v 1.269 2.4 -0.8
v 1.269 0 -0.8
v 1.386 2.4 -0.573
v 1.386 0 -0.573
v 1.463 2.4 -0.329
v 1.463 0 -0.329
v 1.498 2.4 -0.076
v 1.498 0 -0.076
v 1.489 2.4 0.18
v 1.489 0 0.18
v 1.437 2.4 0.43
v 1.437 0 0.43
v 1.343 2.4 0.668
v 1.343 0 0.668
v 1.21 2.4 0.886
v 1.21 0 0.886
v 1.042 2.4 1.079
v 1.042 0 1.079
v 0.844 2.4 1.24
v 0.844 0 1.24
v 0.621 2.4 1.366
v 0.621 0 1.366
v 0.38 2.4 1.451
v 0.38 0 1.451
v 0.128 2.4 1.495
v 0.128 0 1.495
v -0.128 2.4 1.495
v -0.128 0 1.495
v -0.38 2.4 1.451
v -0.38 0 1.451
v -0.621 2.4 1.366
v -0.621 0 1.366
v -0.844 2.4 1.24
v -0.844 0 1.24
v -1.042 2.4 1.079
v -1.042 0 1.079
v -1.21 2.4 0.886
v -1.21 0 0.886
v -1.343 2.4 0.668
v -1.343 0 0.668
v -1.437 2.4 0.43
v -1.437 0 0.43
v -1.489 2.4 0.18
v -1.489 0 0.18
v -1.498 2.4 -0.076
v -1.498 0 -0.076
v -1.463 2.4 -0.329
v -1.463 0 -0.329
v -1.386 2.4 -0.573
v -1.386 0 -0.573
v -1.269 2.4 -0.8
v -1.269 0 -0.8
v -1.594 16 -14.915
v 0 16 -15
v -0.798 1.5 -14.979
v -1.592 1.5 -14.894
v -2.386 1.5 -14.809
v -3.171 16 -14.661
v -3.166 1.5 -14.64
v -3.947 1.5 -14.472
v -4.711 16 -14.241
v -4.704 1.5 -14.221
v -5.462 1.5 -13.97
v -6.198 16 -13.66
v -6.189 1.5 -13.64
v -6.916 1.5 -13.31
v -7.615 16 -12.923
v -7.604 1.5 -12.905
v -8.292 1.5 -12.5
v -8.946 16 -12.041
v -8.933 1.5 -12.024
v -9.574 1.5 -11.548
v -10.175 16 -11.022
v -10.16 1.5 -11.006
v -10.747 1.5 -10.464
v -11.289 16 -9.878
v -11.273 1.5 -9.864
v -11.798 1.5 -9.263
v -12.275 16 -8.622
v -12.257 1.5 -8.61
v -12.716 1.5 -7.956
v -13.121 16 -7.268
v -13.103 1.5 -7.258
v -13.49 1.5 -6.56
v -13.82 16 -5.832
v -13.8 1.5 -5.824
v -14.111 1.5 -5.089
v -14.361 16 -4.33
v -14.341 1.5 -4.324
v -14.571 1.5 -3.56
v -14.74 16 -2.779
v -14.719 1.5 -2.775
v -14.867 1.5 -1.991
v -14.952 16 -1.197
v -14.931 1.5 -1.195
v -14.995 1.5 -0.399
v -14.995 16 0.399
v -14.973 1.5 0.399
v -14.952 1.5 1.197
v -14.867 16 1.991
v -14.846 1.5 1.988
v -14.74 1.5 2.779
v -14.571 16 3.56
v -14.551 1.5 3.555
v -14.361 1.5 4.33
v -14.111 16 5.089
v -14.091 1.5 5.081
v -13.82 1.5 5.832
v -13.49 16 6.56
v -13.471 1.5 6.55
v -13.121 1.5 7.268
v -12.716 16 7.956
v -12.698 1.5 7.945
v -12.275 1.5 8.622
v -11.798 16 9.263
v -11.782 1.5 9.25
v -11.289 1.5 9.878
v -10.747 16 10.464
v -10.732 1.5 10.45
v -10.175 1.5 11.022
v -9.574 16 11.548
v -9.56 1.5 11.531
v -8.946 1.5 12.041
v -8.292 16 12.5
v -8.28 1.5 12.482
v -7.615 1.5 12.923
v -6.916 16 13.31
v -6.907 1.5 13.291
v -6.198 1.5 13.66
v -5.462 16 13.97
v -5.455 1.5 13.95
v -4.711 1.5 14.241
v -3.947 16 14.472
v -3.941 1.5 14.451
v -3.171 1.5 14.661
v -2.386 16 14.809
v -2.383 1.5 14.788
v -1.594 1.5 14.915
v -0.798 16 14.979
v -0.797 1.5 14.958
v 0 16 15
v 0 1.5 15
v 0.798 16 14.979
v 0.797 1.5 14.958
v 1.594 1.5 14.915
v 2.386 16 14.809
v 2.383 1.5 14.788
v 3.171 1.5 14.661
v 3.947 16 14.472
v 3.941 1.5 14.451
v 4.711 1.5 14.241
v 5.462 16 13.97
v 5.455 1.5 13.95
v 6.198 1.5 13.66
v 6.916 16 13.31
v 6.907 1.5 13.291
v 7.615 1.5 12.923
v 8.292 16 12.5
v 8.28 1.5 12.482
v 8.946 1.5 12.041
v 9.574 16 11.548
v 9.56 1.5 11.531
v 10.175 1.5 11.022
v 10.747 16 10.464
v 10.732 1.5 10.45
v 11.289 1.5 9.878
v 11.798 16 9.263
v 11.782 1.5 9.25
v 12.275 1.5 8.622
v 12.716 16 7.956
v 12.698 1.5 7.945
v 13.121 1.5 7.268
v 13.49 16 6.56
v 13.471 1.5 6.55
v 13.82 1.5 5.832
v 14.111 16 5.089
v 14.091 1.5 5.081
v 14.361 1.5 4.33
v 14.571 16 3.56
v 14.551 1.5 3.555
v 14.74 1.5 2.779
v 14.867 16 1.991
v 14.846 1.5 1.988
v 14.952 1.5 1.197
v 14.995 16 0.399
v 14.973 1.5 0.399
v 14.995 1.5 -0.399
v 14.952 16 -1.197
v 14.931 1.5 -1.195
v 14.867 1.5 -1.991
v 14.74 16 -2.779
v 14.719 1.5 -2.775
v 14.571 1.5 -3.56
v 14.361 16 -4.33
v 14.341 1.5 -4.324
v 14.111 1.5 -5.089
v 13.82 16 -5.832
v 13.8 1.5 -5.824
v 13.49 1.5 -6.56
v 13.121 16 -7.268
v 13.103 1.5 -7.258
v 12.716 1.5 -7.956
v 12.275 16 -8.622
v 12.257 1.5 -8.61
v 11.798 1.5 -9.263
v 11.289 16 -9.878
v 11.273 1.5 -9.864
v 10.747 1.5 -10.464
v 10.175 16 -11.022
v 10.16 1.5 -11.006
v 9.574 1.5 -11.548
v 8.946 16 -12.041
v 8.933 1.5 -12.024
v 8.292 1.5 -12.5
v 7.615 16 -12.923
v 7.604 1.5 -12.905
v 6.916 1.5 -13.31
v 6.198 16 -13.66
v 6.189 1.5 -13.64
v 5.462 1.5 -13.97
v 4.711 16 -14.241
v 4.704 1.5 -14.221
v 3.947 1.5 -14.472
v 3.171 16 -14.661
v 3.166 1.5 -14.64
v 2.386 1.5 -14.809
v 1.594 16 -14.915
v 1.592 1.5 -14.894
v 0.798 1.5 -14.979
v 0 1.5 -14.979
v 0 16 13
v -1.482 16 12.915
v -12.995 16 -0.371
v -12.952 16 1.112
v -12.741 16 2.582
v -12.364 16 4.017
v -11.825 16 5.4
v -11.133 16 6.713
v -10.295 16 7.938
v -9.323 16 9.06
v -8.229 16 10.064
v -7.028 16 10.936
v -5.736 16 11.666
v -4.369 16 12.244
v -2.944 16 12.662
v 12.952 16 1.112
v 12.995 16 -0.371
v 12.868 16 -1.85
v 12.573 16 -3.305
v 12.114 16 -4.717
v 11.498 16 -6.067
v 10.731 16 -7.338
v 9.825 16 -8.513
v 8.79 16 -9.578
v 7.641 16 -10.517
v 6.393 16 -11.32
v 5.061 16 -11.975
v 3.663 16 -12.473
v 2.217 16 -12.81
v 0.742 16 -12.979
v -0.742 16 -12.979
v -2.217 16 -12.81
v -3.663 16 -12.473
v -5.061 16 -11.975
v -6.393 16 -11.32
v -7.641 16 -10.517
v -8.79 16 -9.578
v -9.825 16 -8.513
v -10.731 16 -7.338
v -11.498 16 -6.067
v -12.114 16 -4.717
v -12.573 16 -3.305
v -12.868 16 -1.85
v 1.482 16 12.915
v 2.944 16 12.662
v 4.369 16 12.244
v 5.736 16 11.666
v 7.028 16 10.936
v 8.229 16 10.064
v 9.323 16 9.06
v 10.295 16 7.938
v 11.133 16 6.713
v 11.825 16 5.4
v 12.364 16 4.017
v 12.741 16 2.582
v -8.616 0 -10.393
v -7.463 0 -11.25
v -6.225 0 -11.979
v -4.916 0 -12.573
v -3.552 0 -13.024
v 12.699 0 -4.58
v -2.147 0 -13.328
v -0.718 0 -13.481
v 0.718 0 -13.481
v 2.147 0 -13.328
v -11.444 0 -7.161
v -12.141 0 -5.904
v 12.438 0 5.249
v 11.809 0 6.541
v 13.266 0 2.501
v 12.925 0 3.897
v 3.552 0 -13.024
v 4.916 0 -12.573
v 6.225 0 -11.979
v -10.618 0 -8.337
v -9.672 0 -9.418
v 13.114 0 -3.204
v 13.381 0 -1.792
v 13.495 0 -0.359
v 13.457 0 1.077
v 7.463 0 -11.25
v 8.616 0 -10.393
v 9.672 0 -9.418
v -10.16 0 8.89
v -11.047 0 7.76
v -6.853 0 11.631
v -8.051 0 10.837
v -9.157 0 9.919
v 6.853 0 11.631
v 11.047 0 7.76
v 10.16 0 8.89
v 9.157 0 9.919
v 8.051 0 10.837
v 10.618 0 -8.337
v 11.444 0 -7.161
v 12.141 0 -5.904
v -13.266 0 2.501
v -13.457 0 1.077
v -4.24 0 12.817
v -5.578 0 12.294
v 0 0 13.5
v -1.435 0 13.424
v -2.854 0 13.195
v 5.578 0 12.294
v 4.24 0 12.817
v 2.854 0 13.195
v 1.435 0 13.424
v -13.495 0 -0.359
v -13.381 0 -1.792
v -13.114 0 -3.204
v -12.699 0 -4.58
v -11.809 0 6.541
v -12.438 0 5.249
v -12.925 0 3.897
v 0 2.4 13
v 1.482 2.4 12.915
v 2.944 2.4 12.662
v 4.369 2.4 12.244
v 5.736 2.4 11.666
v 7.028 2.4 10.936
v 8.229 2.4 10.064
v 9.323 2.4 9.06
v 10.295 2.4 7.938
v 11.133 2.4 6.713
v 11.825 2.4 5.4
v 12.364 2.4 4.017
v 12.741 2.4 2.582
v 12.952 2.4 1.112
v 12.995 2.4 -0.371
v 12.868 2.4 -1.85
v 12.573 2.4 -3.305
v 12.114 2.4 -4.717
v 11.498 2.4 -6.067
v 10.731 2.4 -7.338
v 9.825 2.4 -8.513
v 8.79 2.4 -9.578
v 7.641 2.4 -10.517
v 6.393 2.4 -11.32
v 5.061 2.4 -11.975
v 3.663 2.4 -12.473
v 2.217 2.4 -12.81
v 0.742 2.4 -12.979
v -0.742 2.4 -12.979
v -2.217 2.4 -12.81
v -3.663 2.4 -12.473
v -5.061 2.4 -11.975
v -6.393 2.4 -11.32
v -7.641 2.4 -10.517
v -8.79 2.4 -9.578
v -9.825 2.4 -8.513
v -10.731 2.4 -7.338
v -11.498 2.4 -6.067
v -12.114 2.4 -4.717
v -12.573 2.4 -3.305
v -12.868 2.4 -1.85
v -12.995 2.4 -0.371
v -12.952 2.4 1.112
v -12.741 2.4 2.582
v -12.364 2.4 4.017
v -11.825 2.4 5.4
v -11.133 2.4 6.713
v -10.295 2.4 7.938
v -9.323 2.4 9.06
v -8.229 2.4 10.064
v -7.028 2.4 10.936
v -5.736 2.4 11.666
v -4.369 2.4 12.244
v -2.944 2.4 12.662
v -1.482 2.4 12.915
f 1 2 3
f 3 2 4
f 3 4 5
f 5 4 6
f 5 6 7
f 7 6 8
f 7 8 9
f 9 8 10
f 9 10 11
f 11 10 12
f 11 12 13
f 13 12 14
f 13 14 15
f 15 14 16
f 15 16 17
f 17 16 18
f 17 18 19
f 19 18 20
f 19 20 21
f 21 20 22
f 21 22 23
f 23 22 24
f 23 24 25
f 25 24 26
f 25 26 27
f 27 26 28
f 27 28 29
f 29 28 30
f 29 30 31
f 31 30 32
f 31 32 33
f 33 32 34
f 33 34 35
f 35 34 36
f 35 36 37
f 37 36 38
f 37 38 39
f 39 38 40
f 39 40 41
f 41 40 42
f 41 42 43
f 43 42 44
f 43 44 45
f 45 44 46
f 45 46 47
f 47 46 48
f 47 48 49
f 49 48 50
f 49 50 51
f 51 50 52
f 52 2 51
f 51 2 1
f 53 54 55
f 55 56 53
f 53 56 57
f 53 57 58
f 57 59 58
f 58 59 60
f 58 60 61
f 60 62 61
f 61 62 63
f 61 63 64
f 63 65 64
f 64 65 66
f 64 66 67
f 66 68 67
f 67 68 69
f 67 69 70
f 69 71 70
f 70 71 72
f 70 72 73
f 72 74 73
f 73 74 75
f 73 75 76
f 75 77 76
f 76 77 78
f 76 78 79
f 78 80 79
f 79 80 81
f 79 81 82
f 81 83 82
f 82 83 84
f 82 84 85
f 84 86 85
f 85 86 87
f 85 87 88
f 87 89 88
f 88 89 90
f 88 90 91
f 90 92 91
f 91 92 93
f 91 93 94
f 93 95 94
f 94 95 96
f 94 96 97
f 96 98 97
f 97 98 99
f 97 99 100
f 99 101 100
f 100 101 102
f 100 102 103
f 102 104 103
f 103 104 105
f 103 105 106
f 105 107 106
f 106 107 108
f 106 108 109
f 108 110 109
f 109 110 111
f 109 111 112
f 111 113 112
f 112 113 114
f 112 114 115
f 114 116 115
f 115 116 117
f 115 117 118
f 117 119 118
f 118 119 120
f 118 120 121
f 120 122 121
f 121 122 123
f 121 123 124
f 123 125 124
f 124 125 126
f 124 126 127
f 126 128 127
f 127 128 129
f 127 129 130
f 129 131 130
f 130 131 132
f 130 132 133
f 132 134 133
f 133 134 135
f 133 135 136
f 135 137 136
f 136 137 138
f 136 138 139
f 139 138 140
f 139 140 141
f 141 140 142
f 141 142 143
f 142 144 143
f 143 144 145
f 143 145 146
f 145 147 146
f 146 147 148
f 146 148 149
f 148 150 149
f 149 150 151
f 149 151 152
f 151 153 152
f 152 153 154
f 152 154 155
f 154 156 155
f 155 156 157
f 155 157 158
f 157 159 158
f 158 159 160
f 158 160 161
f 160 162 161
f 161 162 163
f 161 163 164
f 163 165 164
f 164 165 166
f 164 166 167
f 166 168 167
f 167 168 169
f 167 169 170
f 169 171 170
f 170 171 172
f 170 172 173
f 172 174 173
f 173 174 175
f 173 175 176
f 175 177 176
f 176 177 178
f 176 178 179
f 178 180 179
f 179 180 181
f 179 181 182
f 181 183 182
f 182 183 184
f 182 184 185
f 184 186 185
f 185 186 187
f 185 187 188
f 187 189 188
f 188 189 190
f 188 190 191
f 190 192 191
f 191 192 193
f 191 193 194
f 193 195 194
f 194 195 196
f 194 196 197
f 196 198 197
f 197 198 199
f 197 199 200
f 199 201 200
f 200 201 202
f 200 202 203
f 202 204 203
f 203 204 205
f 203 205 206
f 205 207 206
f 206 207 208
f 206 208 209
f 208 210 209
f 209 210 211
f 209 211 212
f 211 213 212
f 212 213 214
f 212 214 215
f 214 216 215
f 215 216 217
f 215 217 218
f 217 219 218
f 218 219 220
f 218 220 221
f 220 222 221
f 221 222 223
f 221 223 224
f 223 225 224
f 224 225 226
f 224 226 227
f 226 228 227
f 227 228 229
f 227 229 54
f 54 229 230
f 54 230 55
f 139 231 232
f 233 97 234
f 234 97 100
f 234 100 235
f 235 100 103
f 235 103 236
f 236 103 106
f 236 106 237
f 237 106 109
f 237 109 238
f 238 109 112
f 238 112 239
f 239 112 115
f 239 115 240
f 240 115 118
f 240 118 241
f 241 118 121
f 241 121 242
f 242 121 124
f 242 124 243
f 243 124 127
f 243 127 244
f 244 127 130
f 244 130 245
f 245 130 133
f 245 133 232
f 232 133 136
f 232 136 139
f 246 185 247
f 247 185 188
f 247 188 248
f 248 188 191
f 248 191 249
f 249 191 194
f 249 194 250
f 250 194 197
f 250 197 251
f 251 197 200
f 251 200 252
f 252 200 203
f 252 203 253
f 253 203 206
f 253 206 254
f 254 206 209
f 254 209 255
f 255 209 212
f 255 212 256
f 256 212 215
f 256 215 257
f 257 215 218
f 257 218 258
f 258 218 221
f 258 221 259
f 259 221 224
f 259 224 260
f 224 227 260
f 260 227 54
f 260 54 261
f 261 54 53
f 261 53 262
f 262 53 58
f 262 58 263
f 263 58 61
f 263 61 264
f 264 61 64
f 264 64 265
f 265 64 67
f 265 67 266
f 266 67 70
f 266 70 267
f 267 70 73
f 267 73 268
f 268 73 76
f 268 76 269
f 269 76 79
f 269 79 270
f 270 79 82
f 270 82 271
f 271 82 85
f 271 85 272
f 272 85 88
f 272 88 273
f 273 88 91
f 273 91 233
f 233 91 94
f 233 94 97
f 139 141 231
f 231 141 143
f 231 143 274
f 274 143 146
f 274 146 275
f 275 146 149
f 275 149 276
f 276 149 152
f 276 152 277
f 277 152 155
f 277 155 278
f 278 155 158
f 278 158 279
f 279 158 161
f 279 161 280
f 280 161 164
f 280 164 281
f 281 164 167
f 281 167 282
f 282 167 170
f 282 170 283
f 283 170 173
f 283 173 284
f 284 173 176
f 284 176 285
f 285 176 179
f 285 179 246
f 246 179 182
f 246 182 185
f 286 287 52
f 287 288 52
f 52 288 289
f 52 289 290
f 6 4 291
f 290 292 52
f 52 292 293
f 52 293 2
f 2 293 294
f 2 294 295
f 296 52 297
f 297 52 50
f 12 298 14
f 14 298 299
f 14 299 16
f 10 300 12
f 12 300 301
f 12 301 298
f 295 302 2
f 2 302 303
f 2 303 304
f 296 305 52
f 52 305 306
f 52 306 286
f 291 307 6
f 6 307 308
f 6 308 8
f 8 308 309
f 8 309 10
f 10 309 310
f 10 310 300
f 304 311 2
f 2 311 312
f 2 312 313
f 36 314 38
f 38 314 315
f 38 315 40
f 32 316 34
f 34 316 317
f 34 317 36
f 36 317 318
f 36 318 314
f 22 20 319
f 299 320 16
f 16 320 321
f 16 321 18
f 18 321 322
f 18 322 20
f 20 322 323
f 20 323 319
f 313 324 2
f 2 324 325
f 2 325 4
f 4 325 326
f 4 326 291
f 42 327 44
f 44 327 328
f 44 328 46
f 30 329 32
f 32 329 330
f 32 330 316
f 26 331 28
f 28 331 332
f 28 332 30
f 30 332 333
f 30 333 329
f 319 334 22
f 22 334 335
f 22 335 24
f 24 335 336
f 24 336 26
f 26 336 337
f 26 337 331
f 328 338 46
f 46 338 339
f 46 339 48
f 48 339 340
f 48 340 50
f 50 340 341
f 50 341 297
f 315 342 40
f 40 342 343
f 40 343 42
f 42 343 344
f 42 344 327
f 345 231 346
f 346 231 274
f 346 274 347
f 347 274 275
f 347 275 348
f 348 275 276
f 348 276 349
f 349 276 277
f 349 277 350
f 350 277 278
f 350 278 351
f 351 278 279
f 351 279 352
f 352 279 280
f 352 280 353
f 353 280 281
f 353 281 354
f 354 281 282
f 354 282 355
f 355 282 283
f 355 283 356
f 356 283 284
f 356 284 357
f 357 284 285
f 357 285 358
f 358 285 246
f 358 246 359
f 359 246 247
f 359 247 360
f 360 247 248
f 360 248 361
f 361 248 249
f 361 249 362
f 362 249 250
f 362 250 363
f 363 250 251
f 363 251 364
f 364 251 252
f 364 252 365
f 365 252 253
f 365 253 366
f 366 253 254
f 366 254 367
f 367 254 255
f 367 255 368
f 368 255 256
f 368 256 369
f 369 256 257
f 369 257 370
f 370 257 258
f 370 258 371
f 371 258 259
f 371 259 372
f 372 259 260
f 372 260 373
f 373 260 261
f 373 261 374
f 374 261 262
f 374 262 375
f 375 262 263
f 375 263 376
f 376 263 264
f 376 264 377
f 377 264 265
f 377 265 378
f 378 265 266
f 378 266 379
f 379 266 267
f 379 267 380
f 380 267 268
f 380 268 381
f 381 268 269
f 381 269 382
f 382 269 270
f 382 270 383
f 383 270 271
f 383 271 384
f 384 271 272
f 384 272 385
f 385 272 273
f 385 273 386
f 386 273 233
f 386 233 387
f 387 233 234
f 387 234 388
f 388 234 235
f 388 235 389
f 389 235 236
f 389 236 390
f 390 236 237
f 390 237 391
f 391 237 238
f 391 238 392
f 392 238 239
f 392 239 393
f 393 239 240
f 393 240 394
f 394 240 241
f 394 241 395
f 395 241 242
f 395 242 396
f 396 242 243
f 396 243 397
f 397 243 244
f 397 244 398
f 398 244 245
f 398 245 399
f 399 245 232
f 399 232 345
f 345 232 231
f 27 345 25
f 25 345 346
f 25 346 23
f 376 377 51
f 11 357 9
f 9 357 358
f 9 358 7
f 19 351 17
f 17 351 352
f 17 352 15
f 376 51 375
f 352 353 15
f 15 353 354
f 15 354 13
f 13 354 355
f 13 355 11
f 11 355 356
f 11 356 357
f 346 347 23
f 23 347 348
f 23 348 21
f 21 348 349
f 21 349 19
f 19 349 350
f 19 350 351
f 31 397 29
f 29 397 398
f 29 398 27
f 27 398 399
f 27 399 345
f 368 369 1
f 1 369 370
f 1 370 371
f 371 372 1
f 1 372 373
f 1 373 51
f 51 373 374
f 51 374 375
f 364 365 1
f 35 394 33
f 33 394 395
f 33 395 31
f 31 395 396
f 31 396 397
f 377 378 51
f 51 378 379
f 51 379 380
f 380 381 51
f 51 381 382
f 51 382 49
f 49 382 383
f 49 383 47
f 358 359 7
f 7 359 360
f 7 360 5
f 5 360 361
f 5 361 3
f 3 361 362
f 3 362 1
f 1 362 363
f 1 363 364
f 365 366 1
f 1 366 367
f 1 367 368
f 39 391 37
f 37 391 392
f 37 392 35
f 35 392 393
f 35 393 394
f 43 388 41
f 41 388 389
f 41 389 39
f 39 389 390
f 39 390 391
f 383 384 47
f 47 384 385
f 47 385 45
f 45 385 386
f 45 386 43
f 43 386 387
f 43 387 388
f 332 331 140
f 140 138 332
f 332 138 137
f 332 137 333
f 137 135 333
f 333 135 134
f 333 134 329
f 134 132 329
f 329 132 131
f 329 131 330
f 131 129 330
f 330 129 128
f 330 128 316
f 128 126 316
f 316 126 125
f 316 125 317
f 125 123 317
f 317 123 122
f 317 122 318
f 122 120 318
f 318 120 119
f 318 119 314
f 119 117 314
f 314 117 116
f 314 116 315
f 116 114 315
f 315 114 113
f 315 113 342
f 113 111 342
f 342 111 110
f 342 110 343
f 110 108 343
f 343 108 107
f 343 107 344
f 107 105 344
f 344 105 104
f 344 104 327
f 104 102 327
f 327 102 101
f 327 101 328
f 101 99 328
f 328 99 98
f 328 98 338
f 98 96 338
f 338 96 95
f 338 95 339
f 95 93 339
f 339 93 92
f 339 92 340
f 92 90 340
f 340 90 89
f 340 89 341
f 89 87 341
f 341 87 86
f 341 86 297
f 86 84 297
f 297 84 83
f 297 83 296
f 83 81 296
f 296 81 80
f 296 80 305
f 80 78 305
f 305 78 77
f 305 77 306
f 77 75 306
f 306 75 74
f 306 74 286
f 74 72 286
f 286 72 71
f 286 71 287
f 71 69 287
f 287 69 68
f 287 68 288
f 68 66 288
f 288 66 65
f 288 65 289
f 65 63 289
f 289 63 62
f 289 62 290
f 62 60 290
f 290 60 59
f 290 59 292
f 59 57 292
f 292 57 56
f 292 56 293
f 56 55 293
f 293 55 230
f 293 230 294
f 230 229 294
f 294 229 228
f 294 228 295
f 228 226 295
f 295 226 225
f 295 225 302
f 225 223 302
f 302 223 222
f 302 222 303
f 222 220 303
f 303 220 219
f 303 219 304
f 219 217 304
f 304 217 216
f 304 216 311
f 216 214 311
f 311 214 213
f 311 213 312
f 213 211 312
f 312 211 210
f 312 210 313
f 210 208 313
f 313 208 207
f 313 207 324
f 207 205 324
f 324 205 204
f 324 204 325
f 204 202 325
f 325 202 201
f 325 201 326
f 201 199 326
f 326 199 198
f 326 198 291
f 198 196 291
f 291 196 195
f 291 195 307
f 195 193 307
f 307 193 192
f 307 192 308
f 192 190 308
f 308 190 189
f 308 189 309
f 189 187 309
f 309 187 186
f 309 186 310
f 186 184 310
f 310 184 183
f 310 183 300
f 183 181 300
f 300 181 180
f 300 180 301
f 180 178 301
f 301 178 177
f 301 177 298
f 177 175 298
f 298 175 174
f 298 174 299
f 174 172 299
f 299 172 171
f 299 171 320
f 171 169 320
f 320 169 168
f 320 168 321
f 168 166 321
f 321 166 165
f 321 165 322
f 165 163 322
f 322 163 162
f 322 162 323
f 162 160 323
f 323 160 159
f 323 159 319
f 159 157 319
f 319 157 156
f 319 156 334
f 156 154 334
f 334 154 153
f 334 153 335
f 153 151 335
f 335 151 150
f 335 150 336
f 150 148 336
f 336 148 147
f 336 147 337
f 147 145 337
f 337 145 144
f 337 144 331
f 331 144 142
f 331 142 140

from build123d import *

# Parameters (mm, degrees)
SKETCH1_R           = 15
BOSS_EXTRUDE1_DEPTH = 16
SKETCH2_R           = 13
CUT_EXTRUDE1_DEPTH  = 13.6
CHAMFER1_SIZE       = 1.5


with BuildPart() as part:
    # Sketch1 → Boss-Extrude1 (new body)
    with BuildSketch(Plane(origin=(0, 0, 0), x_dir=(1, 0, 0), z_dir=(0, 1, 0))):
        with Locations(Location((0, 0, 0), (0, 0, 270))):
            Circle(SKETCH1_R)
        with BuildLine():
            Line((-1.268857754, 0.8), (1.268857754, 0.8))
            ThreePointArc((1.268857754, 0.8), (0, -1.5), (-1.268857754, 0.8))
        make_face(mode=Mode.SUBTRACT)
    extrude(amount=BOSS_EXTRUDE1_DEPTH)

    # Sketch2 → Cut-Extrude1 (cut)
    with BuildSketch(Plane(origin=(0, 16, 0), x_dir=(1, 0, 0), z_dir=(0, 1, 0))):
        with Locations(Location((0, 0, 0), (0, 0, 270))):
            Circle(SKETCH2_R)
    extrude(amount=-CUT_EXTRUDE1_DEPTH, mode=Mode.SUBTRACT)

    # Chamfer1
    chamfer1_edges = [part.edges().sort_by_distance(p)[0] for p in [
        (0, 0, -15),
    ]]
    chamfer(chamfer1_edges, length=CHAMFER1_SIZE)


solid = part.part
